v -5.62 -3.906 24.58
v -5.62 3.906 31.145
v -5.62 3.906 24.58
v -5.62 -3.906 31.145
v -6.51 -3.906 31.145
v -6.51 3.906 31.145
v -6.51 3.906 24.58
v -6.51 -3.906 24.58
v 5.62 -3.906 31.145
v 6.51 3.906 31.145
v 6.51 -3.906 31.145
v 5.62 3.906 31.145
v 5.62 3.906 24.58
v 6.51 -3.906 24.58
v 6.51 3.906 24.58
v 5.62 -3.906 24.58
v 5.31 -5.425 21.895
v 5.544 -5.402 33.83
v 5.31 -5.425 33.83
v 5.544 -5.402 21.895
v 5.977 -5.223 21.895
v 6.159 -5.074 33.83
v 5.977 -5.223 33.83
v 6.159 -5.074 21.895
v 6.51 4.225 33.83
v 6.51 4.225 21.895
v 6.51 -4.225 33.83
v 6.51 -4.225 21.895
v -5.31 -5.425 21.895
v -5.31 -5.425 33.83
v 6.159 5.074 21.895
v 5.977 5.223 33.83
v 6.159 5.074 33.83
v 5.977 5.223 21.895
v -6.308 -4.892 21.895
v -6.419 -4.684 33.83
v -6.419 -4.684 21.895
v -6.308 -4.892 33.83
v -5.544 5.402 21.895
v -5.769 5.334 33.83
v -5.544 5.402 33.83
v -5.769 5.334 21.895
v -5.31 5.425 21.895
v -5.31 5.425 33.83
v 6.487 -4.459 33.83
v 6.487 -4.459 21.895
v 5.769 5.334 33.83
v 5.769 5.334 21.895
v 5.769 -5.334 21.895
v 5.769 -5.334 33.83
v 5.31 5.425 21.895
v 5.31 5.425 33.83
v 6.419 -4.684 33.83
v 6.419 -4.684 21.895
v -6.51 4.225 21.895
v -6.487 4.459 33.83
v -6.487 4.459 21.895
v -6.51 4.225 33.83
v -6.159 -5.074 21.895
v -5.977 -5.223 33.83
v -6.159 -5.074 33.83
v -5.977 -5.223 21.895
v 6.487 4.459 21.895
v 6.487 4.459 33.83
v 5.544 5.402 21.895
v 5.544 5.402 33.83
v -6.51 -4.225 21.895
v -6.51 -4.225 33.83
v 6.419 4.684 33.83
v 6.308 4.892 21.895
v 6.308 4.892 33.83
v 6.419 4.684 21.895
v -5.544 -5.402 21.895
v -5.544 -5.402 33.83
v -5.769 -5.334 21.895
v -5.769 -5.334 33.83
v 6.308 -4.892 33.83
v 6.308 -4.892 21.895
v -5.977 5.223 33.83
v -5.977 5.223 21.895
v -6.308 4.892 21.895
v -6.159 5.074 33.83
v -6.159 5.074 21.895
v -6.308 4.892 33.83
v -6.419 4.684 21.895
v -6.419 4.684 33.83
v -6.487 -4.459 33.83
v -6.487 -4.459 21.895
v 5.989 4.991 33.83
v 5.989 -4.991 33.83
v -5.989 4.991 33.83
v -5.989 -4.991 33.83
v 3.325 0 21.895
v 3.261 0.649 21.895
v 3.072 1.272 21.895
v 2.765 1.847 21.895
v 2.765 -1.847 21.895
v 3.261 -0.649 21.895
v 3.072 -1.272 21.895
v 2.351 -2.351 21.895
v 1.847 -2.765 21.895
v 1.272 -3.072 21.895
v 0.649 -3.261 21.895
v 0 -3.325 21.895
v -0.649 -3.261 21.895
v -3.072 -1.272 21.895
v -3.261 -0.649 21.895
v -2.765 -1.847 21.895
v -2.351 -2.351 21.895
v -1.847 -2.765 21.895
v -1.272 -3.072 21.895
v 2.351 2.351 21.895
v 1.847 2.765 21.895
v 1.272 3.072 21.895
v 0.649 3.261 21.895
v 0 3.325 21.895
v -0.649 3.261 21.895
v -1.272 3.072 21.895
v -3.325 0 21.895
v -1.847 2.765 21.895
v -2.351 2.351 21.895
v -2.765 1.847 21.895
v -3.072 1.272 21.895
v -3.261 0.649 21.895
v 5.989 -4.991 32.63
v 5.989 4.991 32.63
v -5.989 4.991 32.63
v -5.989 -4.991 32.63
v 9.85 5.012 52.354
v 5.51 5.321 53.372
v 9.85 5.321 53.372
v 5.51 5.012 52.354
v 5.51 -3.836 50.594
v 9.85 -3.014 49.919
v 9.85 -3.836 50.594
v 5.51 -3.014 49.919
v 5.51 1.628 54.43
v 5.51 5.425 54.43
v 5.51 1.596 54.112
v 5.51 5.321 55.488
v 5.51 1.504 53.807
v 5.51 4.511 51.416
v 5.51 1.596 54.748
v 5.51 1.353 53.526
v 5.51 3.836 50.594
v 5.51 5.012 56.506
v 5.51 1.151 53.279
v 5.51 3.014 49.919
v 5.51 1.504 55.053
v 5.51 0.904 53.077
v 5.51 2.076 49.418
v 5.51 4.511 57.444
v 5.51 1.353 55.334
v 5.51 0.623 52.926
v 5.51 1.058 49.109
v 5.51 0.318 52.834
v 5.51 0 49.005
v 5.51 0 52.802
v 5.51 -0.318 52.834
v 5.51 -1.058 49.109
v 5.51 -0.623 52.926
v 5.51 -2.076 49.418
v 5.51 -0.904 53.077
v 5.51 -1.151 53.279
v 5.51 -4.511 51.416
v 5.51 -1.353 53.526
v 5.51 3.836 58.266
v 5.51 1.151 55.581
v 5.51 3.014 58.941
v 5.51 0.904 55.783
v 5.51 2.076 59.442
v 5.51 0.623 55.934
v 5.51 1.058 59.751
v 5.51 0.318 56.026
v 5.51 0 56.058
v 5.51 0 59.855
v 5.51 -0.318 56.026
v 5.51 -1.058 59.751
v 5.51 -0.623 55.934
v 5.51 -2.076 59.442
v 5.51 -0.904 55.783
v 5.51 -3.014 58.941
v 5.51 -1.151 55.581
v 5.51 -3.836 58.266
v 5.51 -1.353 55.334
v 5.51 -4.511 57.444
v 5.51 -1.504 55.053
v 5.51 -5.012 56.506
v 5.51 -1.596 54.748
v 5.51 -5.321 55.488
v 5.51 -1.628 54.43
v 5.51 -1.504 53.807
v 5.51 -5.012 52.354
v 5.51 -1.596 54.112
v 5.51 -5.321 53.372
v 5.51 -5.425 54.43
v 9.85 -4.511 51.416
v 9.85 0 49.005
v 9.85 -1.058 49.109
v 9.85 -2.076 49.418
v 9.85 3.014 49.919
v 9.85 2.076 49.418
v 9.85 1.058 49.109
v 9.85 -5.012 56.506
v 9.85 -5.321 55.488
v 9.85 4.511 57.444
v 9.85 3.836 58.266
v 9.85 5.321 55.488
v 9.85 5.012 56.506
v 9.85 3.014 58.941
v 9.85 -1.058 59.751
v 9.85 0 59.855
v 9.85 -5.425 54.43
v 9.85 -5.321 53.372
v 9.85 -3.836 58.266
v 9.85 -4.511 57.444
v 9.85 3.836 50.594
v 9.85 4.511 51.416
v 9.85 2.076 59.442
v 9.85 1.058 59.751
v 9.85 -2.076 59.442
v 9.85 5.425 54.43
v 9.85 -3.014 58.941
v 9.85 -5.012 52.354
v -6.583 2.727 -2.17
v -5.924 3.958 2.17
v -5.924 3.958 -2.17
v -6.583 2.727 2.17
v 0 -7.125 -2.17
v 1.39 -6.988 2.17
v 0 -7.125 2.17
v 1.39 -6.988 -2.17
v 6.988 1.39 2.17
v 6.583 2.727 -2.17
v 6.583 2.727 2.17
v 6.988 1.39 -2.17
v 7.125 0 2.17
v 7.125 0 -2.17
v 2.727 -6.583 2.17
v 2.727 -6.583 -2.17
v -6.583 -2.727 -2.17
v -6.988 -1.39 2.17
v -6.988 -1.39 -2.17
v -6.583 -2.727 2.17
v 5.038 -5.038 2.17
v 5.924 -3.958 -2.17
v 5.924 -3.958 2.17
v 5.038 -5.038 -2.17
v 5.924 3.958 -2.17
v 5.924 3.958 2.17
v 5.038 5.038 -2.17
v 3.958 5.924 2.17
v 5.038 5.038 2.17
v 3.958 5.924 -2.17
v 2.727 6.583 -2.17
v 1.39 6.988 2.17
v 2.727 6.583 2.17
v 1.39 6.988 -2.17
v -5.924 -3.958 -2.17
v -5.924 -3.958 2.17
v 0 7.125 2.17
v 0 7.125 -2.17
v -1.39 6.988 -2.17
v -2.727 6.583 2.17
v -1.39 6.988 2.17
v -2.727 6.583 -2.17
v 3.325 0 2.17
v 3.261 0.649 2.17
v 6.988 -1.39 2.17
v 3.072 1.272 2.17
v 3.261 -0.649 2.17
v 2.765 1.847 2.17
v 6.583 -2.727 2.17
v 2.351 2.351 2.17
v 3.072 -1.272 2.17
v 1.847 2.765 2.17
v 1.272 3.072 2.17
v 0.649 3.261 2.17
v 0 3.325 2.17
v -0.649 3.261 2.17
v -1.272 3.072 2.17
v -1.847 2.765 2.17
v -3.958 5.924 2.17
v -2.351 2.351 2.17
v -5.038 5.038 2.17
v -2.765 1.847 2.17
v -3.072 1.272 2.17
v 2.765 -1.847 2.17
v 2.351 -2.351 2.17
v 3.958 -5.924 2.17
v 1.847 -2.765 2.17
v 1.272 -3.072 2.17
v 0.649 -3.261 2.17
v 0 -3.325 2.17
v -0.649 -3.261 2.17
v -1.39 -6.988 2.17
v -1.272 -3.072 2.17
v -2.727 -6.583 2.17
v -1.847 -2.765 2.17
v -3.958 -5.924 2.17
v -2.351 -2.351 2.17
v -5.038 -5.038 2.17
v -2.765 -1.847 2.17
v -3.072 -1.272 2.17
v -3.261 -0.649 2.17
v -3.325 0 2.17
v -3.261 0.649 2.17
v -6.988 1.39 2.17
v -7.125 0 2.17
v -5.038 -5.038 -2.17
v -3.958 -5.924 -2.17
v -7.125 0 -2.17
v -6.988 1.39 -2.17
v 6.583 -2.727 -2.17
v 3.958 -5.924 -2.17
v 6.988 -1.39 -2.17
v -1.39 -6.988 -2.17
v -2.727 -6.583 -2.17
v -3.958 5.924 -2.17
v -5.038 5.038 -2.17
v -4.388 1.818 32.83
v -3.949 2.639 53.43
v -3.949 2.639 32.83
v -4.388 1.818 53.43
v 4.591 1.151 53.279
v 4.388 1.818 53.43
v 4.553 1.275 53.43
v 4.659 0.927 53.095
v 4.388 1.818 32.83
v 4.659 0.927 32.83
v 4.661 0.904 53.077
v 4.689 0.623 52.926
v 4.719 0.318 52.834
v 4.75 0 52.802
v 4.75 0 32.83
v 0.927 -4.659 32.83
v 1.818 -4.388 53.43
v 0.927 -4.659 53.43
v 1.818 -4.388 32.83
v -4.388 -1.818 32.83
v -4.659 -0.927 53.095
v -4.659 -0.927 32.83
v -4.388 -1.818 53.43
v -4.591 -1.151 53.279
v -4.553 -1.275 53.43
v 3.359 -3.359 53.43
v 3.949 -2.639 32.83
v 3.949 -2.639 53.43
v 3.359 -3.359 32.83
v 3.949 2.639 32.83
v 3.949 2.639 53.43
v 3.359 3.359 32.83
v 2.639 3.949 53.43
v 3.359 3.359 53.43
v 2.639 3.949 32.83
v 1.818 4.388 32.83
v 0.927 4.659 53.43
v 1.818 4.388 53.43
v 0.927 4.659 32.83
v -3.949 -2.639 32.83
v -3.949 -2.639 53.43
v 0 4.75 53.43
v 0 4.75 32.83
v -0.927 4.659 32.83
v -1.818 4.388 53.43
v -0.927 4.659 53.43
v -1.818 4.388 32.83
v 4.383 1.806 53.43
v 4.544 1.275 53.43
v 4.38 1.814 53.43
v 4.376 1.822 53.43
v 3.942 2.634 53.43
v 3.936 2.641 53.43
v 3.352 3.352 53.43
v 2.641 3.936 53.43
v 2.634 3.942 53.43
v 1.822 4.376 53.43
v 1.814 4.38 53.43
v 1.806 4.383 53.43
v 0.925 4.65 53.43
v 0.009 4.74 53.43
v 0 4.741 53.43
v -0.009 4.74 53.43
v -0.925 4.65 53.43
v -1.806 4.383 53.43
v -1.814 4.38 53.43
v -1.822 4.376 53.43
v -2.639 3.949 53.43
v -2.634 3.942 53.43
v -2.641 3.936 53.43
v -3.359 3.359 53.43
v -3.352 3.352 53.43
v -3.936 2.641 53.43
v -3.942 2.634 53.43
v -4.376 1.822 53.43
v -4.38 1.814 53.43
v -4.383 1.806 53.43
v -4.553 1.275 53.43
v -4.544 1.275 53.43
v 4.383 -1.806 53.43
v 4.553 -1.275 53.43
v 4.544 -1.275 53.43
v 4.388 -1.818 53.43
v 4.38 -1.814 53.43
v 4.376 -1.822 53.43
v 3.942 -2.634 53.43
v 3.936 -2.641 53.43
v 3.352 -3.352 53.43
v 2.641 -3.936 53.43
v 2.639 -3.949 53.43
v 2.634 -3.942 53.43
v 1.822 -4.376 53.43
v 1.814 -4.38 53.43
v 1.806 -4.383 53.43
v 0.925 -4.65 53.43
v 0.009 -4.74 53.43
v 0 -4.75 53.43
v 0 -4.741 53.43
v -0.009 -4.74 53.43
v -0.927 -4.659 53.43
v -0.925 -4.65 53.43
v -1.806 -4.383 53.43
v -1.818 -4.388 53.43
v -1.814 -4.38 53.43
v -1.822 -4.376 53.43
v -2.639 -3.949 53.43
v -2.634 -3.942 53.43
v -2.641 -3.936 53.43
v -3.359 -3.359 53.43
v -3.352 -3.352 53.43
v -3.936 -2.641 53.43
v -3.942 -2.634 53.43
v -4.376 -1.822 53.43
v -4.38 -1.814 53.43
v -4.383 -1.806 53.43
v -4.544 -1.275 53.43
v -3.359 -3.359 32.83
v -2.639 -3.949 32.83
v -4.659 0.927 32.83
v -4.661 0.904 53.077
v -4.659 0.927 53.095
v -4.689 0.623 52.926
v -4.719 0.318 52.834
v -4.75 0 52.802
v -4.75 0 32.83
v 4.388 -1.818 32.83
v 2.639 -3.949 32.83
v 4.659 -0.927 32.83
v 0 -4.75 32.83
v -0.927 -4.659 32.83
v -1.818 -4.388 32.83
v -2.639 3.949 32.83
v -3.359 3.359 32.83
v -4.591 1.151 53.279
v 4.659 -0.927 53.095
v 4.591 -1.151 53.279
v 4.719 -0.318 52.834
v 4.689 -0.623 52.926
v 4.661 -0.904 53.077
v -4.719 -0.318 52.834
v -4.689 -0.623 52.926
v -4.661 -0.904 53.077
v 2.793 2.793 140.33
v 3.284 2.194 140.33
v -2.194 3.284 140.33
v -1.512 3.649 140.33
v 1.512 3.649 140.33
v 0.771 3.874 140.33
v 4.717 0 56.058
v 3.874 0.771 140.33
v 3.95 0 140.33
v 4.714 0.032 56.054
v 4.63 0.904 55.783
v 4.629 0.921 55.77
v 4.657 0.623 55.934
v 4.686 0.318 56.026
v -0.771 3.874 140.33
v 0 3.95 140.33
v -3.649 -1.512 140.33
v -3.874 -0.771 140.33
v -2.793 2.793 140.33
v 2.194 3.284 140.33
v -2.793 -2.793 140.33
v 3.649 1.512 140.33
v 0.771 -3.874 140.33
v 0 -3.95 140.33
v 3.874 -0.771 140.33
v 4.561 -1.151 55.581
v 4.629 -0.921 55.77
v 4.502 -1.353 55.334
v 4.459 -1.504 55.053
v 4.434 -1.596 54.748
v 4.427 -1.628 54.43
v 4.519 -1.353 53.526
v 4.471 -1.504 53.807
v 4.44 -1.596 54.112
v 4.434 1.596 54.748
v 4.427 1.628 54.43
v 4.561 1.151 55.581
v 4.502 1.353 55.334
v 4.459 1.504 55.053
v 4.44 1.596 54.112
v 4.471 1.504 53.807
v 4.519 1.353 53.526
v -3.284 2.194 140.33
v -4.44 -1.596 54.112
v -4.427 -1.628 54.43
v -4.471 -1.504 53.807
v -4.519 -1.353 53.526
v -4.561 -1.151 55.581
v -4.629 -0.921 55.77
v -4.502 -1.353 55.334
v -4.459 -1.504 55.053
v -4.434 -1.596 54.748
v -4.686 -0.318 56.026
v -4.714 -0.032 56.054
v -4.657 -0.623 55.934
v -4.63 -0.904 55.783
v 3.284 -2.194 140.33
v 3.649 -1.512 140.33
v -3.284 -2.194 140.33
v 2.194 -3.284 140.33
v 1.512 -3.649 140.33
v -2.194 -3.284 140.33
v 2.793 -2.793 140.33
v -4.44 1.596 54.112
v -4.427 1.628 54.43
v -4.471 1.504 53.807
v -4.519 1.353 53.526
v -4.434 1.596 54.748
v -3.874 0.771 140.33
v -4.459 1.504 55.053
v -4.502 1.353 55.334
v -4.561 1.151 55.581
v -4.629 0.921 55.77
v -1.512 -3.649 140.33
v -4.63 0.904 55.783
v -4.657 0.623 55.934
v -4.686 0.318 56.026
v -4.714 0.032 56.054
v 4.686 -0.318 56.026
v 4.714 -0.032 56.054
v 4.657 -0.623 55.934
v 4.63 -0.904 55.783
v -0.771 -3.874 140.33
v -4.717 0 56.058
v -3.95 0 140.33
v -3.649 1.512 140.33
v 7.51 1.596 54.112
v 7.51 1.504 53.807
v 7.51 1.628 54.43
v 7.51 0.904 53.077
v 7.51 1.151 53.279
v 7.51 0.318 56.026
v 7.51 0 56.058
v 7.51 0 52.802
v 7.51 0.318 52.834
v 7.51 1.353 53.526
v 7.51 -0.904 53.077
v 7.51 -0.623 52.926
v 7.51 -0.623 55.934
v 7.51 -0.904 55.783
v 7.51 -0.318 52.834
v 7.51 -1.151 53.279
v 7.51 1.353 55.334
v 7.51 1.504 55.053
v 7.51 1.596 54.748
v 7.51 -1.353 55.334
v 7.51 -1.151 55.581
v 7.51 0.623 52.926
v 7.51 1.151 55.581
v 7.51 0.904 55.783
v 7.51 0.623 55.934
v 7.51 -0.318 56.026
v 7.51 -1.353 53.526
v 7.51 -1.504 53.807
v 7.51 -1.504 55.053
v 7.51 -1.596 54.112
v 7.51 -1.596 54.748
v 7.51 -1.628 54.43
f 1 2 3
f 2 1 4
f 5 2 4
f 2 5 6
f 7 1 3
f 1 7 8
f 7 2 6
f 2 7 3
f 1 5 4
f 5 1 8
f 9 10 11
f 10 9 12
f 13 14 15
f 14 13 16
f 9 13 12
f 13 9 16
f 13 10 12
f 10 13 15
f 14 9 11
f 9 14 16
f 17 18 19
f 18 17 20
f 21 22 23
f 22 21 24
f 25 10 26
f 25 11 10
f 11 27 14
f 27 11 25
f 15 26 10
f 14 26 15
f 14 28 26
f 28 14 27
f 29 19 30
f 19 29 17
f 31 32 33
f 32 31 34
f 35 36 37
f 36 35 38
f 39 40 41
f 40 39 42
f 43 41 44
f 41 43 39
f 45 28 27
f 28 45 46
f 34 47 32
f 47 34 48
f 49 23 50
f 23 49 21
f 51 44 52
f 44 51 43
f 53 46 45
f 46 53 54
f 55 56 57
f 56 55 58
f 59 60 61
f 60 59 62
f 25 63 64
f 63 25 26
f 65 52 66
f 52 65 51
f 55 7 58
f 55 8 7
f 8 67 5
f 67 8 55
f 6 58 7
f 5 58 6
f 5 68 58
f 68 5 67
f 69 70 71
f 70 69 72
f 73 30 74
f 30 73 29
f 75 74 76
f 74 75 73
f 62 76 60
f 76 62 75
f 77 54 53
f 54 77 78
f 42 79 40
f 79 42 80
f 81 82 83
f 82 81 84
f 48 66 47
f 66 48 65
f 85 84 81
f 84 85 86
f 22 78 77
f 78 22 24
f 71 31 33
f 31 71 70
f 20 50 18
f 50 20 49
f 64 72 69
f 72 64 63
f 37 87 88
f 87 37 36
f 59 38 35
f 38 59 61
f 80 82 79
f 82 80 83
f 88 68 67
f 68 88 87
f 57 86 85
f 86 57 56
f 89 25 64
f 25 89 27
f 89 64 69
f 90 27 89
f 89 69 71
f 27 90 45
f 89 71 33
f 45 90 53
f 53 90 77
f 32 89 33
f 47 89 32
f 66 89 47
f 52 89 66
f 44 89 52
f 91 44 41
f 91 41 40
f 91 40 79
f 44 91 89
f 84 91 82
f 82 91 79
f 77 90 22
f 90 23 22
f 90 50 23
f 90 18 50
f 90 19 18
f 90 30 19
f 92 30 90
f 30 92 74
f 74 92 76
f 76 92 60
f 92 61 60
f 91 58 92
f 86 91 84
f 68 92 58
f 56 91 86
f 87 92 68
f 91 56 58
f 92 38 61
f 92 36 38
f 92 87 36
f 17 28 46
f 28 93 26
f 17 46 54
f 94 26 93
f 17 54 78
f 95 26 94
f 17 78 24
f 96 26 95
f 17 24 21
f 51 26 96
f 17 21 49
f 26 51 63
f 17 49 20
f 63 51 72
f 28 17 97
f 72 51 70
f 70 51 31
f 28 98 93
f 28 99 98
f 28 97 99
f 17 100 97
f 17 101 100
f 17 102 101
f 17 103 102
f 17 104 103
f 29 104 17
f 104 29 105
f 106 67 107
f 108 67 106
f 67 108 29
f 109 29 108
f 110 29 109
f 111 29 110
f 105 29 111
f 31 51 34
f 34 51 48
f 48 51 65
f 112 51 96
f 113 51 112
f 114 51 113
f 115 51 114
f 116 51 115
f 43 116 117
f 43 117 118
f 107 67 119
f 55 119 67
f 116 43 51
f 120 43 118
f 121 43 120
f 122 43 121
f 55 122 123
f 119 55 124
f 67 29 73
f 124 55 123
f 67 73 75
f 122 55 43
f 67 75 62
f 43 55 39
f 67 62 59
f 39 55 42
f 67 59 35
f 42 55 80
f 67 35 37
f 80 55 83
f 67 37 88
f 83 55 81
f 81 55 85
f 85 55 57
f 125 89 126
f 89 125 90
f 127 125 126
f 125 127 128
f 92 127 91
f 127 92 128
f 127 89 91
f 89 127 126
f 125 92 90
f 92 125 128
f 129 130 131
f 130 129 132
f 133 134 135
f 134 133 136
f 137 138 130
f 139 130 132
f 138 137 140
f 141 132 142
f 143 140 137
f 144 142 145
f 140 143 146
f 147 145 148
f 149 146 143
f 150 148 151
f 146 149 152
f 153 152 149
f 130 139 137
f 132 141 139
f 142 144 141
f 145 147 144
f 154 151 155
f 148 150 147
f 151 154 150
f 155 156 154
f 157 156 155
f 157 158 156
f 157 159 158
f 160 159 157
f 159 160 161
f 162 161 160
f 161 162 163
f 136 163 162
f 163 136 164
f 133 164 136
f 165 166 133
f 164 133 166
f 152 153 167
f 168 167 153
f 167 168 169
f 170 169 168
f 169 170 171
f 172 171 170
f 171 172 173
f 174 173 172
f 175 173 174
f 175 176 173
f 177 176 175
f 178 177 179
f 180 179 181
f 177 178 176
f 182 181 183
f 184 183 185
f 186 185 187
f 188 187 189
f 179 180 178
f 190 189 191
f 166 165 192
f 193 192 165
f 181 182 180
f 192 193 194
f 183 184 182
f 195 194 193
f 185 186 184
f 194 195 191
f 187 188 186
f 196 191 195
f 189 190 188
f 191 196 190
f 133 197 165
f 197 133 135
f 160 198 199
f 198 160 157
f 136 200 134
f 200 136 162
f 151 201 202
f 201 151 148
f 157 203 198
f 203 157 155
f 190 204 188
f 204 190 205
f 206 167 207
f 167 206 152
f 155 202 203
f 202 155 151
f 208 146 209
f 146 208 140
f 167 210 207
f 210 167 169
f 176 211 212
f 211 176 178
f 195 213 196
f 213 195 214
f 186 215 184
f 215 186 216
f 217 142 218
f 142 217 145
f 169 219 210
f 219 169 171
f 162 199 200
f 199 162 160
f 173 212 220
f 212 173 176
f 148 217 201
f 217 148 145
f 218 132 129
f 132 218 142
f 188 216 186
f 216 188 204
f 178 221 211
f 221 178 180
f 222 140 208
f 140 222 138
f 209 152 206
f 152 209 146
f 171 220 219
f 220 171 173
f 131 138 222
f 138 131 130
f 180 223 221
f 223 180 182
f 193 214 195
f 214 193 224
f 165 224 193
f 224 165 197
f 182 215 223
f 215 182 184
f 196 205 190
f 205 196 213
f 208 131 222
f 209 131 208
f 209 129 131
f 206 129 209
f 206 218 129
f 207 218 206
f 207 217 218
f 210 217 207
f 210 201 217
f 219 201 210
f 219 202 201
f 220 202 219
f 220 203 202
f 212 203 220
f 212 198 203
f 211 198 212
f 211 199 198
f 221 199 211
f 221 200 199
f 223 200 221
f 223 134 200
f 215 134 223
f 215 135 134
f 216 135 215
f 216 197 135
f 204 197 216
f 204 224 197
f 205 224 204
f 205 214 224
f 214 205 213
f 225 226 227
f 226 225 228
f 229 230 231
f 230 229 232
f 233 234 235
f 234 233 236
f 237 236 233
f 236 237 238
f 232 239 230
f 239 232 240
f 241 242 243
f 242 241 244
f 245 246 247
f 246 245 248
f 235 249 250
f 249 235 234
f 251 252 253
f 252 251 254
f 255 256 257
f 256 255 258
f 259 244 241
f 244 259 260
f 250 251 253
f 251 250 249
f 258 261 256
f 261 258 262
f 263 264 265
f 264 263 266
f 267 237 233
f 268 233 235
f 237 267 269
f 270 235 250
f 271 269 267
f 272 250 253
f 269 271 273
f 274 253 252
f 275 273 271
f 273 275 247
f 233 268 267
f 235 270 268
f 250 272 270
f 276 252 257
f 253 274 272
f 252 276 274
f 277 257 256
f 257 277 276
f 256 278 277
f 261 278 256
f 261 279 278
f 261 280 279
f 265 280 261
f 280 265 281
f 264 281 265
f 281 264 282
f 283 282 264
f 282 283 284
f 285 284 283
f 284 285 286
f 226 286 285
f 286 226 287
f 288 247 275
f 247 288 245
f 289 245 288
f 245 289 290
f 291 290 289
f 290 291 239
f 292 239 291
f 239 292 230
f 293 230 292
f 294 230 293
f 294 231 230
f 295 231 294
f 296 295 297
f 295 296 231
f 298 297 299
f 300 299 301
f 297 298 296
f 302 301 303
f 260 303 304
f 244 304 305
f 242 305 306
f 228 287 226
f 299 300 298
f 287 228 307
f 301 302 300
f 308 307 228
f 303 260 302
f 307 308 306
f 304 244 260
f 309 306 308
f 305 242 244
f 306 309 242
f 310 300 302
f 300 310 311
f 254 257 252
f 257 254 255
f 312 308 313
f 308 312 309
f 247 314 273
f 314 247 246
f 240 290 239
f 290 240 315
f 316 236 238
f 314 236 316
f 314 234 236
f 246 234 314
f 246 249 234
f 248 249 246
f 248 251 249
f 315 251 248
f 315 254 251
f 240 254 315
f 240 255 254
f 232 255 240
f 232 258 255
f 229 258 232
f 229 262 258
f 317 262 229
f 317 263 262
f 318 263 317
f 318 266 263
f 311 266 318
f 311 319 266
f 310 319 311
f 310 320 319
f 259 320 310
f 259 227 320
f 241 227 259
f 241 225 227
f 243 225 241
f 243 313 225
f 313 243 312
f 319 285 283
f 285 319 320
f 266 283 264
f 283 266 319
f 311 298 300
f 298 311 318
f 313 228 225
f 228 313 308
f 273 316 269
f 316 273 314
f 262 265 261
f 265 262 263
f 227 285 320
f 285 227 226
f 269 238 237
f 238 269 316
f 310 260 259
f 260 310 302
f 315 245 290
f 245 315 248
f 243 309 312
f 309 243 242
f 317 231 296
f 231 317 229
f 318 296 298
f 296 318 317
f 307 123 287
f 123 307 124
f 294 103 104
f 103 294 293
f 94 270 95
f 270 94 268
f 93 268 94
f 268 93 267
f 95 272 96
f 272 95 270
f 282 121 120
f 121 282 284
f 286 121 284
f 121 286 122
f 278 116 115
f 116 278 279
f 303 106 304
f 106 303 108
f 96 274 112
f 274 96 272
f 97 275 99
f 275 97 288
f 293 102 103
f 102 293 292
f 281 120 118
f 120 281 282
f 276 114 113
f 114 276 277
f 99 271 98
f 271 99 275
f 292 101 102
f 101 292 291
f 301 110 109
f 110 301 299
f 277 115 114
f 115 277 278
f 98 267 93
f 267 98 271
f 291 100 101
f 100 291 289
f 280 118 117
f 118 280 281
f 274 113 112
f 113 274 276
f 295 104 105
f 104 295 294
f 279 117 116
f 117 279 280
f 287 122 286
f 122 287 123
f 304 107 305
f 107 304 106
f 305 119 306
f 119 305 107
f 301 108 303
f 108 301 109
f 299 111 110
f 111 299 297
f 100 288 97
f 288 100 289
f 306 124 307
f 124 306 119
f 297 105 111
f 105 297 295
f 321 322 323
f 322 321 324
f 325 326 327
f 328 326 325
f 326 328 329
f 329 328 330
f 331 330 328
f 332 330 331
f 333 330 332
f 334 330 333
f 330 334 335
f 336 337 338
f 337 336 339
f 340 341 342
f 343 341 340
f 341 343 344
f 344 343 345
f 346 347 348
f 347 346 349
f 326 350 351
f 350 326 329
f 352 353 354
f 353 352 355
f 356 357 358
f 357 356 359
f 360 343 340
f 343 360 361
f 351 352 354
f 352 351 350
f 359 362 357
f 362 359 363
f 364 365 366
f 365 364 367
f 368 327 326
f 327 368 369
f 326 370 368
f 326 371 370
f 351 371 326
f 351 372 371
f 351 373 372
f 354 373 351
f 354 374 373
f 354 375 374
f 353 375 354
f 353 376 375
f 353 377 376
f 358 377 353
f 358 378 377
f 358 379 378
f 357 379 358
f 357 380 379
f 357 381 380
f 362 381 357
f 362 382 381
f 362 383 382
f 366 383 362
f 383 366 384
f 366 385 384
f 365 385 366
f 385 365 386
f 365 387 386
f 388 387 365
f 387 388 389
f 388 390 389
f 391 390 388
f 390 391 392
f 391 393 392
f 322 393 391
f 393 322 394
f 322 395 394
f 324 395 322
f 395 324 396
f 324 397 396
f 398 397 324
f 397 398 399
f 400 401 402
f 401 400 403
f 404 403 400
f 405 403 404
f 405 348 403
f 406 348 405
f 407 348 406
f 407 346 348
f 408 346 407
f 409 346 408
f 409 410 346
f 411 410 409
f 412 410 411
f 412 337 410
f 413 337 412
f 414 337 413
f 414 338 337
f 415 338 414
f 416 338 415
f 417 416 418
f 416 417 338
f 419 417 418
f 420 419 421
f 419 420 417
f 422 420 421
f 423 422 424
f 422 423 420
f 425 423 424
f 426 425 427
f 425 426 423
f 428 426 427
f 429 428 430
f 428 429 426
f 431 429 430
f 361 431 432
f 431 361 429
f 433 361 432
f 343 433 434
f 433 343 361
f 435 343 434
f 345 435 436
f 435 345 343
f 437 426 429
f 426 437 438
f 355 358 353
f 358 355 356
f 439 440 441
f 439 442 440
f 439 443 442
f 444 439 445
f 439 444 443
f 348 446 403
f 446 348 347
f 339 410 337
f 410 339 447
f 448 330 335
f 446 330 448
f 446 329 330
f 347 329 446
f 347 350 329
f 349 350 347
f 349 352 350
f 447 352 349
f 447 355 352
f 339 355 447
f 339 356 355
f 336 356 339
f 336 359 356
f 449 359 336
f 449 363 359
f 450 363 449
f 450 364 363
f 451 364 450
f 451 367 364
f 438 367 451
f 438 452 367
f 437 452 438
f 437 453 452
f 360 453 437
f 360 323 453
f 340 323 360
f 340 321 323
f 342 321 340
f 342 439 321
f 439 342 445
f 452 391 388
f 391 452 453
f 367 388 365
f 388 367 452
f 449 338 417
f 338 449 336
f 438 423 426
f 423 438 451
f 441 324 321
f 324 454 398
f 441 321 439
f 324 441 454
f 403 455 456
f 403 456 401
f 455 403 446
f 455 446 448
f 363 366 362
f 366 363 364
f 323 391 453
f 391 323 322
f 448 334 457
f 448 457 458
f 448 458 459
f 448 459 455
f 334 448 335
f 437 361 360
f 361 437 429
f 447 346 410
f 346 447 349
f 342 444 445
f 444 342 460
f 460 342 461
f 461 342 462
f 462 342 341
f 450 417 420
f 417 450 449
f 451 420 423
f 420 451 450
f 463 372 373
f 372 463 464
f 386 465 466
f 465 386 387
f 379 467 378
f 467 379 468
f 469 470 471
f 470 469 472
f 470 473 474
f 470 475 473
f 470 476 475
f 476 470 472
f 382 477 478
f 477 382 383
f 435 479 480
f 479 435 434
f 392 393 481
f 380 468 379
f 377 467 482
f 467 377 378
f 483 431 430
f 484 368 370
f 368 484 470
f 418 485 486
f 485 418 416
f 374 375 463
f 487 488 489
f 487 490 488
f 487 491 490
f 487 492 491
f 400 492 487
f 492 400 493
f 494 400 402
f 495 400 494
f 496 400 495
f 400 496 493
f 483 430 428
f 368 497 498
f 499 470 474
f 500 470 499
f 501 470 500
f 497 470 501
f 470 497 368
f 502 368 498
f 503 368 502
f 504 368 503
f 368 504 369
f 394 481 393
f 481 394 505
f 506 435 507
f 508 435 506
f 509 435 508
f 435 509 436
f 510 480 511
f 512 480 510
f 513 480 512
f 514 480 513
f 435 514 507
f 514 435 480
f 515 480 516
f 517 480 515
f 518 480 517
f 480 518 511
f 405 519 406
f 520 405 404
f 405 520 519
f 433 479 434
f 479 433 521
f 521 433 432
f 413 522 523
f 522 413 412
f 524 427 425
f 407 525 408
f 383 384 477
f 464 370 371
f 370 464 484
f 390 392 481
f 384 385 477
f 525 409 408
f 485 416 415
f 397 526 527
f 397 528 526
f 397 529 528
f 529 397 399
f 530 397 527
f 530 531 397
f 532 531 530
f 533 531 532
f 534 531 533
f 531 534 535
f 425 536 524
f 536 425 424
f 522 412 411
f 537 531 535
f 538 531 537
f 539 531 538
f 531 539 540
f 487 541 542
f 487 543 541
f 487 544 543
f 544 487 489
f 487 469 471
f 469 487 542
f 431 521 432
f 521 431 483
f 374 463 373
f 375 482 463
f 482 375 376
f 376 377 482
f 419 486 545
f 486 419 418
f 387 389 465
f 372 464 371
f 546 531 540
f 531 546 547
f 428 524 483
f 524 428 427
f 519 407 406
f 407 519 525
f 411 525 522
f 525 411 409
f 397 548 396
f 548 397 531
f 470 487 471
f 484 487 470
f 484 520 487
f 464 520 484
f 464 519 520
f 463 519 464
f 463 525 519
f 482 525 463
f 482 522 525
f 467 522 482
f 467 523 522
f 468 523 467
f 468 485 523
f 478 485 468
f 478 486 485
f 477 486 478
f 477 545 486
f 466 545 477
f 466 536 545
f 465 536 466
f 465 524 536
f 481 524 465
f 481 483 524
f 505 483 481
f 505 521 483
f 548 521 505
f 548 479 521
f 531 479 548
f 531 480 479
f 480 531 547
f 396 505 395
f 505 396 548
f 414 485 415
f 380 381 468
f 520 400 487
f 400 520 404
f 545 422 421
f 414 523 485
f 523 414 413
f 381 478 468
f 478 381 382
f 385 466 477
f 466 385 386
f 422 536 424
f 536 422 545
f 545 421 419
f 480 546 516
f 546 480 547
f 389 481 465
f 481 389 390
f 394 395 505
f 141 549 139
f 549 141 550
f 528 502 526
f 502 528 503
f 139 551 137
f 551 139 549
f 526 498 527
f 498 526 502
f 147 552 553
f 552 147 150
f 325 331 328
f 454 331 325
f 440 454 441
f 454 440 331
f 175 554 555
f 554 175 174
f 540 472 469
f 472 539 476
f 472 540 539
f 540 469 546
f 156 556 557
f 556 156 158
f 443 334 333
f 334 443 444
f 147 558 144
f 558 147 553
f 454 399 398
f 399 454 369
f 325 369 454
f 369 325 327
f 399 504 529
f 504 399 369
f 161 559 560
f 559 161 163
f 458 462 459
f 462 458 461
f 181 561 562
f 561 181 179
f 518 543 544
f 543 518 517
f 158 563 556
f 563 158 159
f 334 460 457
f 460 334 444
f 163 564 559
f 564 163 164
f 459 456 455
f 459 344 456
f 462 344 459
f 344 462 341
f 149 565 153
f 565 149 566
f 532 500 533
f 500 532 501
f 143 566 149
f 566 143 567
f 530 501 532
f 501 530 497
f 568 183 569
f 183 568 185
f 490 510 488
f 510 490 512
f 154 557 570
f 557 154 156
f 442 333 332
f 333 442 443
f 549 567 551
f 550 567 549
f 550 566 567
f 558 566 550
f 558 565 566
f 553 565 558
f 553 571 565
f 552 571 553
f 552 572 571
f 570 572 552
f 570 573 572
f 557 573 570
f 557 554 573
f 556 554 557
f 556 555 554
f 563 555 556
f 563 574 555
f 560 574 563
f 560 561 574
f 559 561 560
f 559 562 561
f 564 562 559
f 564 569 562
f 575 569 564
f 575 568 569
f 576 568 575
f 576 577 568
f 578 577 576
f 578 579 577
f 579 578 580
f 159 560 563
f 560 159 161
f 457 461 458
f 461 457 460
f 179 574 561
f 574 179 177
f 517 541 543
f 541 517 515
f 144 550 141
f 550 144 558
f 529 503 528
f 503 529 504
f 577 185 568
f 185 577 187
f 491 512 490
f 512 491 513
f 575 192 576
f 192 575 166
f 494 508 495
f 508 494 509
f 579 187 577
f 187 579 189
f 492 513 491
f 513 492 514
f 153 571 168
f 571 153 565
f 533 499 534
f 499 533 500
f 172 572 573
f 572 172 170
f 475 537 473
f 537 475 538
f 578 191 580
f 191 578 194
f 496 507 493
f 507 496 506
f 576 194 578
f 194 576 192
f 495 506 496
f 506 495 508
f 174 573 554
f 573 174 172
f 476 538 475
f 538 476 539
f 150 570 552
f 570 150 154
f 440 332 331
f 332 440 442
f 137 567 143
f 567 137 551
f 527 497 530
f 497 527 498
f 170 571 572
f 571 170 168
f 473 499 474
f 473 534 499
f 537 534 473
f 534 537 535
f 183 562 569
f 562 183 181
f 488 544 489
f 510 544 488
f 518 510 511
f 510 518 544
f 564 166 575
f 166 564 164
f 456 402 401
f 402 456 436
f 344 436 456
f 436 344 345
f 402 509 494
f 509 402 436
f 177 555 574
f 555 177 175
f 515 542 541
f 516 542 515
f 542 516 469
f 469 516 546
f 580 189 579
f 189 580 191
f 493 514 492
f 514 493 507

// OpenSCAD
// Parameters (mm)
total_length_mm = 108.5; //[54.25:217:0.1]
base_diameter_mm = 9.5; //[4.75:19:0.1]
tip_diameter_mm = 7.9; //[3.95:15.8:0.1]
fixed_straight_section_length_mm = 20.6; //[10.3:41.2:0.1]
pivot_distance_from_base_mm = 20.6; //[10.3:41.2:0.1]
panel_gap_for_washers_and_nuts_mm = 6.45; //[3.225:12.9:0.05]
default_fold_angle_deg = 0; //[0:180:1]
overlap_mm = 1; //[0.5:2:0.1]
hinge_block_length_mm = 10.85; //[5.425:21.7:0.05]
hinge_block_width_mm = 13.02; //[6.51:26.04:0.05]
hinge_block_height_mm = 11.935; //[5.9675:23.87:0.05]
pivot_pin_diameter_mm = 3.255; //[1.6275:6.51:0.05]
panel_shank_diameter_mm = 6.65; //[3.325:13.3:0.05]
panel_shank_length_mm = 16.275; //[8.1375:32.55:0.05]
base_interface_diameter_mm = 14.25; //[7.125:28.5:0.05]
base_interface_thickness_mm = 4.34; //[2.17:8.68:0.05]
knob_diameter_mm = 10.85; //[5.425:21.7:0.05]
knob_thickness_mm = 4.34; //[2.17:8.68:0.05]

// Quality
$fn=32;

// Derived Z positions from plan (kept as expressions for parametric fidelity)
z_base_interface = 0;

z_panel_mount_shank =
  base_interface_thickness_mm/2 + panel_shank_length_mm/2 - overlap_mm;

z_panel_gap_spacer_region =
  base_interface_thickness_mm/2 + panel_shank_length_mm - overlap_mm
  + panel_gap_for_washers_and_nuts_mm/2 - overlap_mm;

z_box_section =
  base_interface_thickness_mm/2 + panel_shank_length_mm - overlap_mm
  + panel_gap_for_washers_and_nuts_mm - overlap_mm
  + hinge_block_height_mm/2 - overlap_mm;

z_fixed_straight_section =
  base_interface_thickness_mm/2 + panel_shank_length_mm - overlap_mm
  + panel_gap_for_washers_and_nuts_mm - overlap_mm
  + hinge_block_height_mm - overlap_mm
  + fixed_straight_section_length_mm/2 - overlap_mm;

z_whip_body =
  base_interface_thickness_mm/2 + panel_shank_length_mm - overlap_mm
  + panel_gap_for_washers_and_nuts_mm - overlap_mm
  + hinge_block_height_mm - overlap_mm
  + fixed_straight_section_length_mm - overlap_mm
  + (total_length_mm - fixed_straight_section_length_mm)/2 - overlap_mm;

z_pivot_center =
  base_interface_thickness_mm/2 + panel_shank_length_mm - overlap_mm
  + panel_gap_for_washers_and_nuts_mm - overlap_mm
  + hinge_block_height_mm - overlap_mm
  + pivot_distance_from_base_mm;

x_knob_center =
  hinge_block_width_mm/2 + knob_thickness_mm/2 - overlap_mm;

// ---------- Helpers ----------
module rounded_box_2d(w, l, r) {
  // 2D rounded rectangle centered at origin
  rr = min(r, min(w, l)/2);
  offset(r=rr) square([w-2*rr, l-2*rr], center=true);
}

module box_section() {
  // Detailed hinge block: rounded edges + shallow side recesses + small top chamfer-like flats
  color([0.15, 0.15, 0.17]) {
    r_corner = min(1.2, min(hinge_block_width_mm, hinge_block_length_mm)/6);
    recess_d = min(0.9, hinge_block_width_mm/10);
    recess_h = min(hinge_block_height_mm*0.55, hinge_block_height_mm-1.2);

    translate([0, 0, z_box_section])
    difference() {
      // Main rounded block
      linear_extrude(height=hinge_block_height_mm, center=true)
        rounded_box_2d(hinge_block_width_mm, hinge_block_length_mm, r_corner);

      // Side recesses (visual detail), keep shallow so it remains strong
      for (sx = [-1, 1]) {
        translate([sx*(hinge_block_width_mm/2 - recess_d/2 + 0.01), 0, 0])
          cube([recess_d, hinge_block_length_mm*0.72, recess_h], center=true);
      }

      // Small top flats (pseudo-chamfer)
      translate([0, 0, hinge_block_height_mm/2 - 0.6])
        cube([hinge_block_width_mm*0.92, hinge_block_length_mm*0.92, 1.2], center=true);
    }
  }
}

module screw_knob_assembly() {
  // Detailed knob + through screw shank (visual), aligned along X (as per plan rotation)
  // Note: This is UNIONED into the printed part per plan (single connected solid).
  color([0.2, 0.2, 0.22]) {
    knob_r = knob_diameter_mm/2;
    knob_h = knob_thickness_mm;

    // Knurling bumps
    n_knurls = 18;
    bump_r = min(0.55, knob_r*0.12);
    bump_out = min(0.7, knob_r*0.14);

    translate([x_knob_center, 0, z_pivot_center])
    rotate([0, 90, 0])  // cylinder axis along X
    union() {
      // Knob disk
      cylinder(r=knob_r, h=knob_h, center=true);

      // Slight front cap
      translate([0, 0, knob_h/2 - 0.6])
        cylinder(r=knob_r*0.92, h=1.2, center=true);

      // Knurl bumps around perimeter
      for (i = [0:n_knurls-1]) {
        ang = i*360/n_knurls;
        rotate([0, 0, ang])
          translate([knob_r - bump_out, 0, 0])
            cylinder(r=bump_r, h=knob_h*0.85, center=true, $fn=16);
      }

      // Integrated "screw shank" stub (visual cue), not subtracted (single solid)
      // Runs toward hinge block to suggest a screw passing through.
      shank_d = max(2.2, pivot_pin_diameter_mm*0.85);
      shank_len = max(hinge_block_width_mm*0.55, knob_h*1.2);
      translate([0, 0, -knob_h/2 - shank_len/2 + 0.2])
        cylinder(d=shank_d, h=shank_len, center=true, $fn=24);
    }
  }
}

module mod() {
  // Full module solid before pivot hole subtraction (as per plan "mod" union)
  color([0.75, 0.75, 0.77]) {
    union() {
      // base_mount_interface
      translate([0, 0, z_base_interface])
        cylinder(r=base_interface_diameter_mm/2, h=base_interface_thickness_mm, center=true);

      // panel_mount_shank
      translate([0, 0, z_panel_mount_shank])
        cylinder(r=panel_shank_diameter_mm/2, h=panel_shank_length_mm, center=true);

      // panel_gap_spacer_region
      translate([0, 0, z_panel_gap_spacer_region])
        cylinder(r=panel_shank_diameter_mm/2, h=panel_gap_for_washers_and_nuts_mm, center=true);

      // pivot_hinge_feature = union(box_section, screw_knob_assembly)
      union() {
        box_section();
        screw_knob_assembly();
      }

      // fixed_straight_section
      translate([0, 0, z_fixed_straight_section])
        cylinder(r=base_diameter_mm/2, h=fixed_straight_section_length_mm, center=true);

      // whip_body (tapered)
      // Visual fold angle parameter exists; plan geometry is straight. Keep straight to match plan.
      translate([0, 0, z_whip_body])
        cylinder(h=total_length_mm - fixed_straight_section_length_mm,
                 r1=base_diameter_mm/2, r2=tip_diameter_mm/2, center=true);
    }
  }
}

module antenna_with_pivot_hole() {
  difference() {
    mod();

    // pivot_pin_hole (subtract)
    translate([0, 0, z_pivot_center])
      rotate([0, 90, 0])
        cylinder(r=pivot_pin_diameter_mm/2,
                 h=hinge_block_width_mm + 2*overlap_mm,
                 center=true, $fn=32);
  }
}

module assembly() {
  // Primary at origin: base_mount_interface is centered at [0,0,0] within mod()
  antenna_with_pivot_hole();
}

assembly();
